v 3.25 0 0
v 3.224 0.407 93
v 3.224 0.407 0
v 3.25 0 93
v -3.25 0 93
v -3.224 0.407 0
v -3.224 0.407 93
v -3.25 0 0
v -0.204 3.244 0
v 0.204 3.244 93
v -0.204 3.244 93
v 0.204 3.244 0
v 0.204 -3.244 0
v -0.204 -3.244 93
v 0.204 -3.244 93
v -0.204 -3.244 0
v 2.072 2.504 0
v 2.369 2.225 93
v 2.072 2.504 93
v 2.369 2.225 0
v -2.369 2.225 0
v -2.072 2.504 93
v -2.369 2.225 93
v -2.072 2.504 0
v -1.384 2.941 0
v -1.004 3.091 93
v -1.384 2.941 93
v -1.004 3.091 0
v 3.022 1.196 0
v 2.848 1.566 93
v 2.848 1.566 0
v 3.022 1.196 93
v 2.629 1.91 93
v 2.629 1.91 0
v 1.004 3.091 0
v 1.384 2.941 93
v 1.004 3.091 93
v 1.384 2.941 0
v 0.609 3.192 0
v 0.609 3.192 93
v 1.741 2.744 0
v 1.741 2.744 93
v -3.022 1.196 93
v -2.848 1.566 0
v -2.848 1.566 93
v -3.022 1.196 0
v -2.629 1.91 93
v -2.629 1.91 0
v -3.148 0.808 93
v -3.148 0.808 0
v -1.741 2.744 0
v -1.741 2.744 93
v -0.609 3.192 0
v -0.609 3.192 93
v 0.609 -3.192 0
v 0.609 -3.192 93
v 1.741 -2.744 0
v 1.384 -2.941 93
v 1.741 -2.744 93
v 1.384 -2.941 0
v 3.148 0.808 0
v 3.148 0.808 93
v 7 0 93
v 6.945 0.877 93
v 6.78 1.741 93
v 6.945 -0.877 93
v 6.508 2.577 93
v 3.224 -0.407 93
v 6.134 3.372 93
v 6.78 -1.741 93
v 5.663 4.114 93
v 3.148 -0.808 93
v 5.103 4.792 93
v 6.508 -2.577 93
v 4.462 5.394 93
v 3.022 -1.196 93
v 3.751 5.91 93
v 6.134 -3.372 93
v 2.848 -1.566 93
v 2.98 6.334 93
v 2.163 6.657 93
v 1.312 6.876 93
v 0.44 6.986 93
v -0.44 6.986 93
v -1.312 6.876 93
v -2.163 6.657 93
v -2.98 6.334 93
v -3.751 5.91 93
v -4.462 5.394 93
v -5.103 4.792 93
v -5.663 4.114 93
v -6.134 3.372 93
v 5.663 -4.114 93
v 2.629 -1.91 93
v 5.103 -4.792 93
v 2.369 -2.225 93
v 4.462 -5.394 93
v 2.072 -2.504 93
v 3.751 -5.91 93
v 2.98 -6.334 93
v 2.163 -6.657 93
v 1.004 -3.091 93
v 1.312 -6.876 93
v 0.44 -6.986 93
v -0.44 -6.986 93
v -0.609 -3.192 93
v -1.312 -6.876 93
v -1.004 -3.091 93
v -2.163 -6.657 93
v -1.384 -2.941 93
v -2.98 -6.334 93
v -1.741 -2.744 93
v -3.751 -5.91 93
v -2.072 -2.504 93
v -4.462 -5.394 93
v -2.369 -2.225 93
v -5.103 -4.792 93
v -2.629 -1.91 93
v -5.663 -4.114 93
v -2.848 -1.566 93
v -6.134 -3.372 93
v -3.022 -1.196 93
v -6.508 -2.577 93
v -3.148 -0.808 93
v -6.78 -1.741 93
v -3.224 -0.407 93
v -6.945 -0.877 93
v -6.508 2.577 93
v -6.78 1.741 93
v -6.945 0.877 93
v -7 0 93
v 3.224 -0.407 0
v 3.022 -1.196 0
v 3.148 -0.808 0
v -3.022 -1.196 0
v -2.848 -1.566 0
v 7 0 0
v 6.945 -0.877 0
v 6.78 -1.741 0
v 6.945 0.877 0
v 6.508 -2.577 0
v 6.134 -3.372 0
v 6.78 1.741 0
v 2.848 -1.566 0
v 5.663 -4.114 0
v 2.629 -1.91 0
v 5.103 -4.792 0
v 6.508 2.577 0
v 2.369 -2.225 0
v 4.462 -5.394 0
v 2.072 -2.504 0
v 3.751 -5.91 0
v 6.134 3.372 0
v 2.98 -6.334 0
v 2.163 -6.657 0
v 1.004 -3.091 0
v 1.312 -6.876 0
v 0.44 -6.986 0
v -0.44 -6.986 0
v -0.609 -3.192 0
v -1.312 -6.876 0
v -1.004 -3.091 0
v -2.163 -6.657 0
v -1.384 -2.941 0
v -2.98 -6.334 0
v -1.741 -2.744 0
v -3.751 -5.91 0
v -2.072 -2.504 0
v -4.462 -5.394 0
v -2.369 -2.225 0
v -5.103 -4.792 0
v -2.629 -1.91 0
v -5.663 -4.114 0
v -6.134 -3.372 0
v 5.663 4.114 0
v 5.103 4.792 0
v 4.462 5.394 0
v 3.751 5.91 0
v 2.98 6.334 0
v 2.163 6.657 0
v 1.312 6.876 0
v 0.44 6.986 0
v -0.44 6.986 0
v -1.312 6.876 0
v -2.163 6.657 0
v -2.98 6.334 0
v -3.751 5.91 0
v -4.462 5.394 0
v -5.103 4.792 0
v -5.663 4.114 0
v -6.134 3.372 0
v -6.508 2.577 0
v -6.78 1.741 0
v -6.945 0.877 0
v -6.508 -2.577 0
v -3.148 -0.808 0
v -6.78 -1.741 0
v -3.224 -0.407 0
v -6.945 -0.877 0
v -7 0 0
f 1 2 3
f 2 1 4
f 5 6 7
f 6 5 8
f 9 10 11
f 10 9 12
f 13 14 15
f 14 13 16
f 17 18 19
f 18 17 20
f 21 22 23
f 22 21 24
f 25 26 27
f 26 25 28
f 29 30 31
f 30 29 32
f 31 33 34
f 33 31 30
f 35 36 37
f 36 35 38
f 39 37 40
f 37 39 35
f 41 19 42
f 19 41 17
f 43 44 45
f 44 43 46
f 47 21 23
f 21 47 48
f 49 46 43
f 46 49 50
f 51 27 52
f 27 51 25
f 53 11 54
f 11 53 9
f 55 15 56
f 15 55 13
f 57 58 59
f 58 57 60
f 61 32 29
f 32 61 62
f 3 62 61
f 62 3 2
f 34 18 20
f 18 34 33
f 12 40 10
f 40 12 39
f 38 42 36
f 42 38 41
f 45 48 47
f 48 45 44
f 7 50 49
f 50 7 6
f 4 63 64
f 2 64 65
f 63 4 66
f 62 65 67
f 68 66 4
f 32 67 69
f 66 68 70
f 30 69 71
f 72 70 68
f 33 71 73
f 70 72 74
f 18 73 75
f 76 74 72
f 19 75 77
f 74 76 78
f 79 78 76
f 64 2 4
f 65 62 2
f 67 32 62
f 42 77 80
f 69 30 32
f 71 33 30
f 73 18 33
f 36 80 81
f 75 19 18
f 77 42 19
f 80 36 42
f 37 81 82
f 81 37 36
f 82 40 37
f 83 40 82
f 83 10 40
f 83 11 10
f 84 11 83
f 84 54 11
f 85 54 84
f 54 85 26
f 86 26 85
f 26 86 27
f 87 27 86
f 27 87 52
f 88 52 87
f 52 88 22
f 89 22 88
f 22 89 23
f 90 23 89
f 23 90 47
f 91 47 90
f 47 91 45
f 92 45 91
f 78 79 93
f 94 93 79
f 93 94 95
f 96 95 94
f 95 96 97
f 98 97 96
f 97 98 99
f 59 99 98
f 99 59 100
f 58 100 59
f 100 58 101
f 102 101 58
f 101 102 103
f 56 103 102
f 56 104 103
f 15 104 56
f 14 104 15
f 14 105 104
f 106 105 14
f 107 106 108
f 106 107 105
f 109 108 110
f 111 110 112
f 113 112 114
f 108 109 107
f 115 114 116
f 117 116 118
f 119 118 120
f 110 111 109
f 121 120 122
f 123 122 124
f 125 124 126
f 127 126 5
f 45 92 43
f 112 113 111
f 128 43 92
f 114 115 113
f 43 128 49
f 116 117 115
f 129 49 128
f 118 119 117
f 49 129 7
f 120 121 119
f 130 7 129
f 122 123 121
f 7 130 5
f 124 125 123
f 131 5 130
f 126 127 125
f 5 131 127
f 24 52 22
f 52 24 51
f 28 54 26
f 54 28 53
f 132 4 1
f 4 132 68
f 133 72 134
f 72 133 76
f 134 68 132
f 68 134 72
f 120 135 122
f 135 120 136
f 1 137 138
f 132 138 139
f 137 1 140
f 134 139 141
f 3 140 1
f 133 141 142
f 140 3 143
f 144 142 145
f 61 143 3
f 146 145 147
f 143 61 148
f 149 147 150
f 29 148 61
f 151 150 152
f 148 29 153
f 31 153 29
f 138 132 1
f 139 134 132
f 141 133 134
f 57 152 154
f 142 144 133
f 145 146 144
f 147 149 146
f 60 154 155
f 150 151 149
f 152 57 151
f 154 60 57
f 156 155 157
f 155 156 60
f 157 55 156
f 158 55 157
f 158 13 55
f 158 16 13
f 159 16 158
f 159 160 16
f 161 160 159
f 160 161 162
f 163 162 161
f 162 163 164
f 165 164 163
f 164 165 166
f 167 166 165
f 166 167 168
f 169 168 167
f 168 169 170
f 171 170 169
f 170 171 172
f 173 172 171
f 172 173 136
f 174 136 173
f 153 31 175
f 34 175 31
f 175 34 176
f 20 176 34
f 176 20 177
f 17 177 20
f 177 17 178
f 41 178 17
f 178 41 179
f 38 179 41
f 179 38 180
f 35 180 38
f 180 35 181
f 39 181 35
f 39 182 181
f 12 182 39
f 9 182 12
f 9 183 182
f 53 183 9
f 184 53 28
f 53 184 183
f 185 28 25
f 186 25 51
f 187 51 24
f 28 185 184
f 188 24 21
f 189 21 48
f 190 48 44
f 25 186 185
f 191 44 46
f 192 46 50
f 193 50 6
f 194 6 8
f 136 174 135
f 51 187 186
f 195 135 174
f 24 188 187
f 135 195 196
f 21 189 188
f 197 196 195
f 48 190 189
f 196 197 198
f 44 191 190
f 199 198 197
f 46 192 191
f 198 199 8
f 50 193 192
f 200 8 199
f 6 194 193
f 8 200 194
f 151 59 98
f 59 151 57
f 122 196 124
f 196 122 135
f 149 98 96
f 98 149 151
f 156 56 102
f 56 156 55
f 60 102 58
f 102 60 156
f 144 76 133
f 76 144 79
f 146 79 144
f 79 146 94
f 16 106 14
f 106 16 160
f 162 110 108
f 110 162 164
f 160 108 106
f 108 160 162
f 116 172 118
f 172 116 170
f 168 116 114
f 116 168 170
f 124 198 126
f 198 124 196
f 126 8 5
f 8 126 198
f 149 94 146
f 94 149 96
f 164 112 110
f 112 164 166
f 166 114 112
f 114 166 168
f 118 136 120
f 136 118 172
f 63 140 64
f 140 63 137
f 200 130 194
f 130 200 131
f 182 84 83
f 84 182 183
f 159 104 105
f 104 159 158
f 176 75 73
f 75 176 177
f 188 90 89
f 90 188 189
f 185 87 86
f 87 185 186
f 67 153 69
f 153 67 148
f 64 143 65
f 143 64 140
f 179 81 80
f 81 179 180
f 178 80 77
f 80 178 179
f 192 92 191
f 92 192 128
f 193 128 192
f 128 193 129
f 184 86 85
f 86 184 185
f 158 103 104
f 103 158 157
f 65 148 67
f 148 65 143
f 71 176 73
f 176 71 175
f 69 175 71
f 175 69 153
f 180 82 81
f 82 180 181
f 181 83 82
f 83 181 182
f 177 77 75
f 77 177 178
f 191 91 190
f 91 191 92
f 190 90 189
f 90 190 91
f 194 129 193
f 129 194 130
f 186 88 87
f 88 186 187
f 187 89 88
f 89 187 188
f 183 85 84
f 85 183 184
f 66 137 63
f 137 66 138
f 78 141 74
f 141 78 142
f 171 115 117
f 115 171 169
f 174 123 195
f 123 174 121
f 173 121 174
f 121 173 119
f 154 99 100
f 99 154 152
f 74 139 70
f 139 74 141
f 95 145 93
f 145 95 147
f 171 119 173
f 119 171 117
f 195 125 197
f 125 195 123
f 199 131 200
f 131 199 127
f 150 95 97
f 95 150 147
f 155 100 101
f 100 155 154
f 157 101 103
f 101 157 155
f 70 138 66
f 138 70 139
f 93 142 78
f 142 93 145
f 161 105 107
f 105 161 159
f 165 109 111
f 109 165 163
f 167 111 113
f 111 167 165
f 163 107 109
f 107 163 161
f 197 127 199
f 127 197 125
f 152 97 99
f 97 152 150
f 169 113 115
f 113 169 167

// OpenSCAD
$fn = 50;


difference() {
	union() {
		cylinder(h = 93, r = 7.0000000000);
	}
	union() {
		translate(v = [0.0000000000, 0.0000000000, -100.0000000000]) {
			cylinder(h = 200, r = 3.2500000000);
		}
		translate(v = [0.0000000000, 0.0000000000, -100.0000000000]) {
			cylinder(h = 200, r = 3.2500000000);
		}
		translate(v = [0.0000000000, 0.0000000000, -100.0000000000]) {
			cylinder(h = 200, r = 3.2500000000);
		}
		translate(v = [0.0000000000, 0.0000000000, -100.0000000000]) {
			cylinder(h = 200, r = 3.2500000000);
		}
	}
}
